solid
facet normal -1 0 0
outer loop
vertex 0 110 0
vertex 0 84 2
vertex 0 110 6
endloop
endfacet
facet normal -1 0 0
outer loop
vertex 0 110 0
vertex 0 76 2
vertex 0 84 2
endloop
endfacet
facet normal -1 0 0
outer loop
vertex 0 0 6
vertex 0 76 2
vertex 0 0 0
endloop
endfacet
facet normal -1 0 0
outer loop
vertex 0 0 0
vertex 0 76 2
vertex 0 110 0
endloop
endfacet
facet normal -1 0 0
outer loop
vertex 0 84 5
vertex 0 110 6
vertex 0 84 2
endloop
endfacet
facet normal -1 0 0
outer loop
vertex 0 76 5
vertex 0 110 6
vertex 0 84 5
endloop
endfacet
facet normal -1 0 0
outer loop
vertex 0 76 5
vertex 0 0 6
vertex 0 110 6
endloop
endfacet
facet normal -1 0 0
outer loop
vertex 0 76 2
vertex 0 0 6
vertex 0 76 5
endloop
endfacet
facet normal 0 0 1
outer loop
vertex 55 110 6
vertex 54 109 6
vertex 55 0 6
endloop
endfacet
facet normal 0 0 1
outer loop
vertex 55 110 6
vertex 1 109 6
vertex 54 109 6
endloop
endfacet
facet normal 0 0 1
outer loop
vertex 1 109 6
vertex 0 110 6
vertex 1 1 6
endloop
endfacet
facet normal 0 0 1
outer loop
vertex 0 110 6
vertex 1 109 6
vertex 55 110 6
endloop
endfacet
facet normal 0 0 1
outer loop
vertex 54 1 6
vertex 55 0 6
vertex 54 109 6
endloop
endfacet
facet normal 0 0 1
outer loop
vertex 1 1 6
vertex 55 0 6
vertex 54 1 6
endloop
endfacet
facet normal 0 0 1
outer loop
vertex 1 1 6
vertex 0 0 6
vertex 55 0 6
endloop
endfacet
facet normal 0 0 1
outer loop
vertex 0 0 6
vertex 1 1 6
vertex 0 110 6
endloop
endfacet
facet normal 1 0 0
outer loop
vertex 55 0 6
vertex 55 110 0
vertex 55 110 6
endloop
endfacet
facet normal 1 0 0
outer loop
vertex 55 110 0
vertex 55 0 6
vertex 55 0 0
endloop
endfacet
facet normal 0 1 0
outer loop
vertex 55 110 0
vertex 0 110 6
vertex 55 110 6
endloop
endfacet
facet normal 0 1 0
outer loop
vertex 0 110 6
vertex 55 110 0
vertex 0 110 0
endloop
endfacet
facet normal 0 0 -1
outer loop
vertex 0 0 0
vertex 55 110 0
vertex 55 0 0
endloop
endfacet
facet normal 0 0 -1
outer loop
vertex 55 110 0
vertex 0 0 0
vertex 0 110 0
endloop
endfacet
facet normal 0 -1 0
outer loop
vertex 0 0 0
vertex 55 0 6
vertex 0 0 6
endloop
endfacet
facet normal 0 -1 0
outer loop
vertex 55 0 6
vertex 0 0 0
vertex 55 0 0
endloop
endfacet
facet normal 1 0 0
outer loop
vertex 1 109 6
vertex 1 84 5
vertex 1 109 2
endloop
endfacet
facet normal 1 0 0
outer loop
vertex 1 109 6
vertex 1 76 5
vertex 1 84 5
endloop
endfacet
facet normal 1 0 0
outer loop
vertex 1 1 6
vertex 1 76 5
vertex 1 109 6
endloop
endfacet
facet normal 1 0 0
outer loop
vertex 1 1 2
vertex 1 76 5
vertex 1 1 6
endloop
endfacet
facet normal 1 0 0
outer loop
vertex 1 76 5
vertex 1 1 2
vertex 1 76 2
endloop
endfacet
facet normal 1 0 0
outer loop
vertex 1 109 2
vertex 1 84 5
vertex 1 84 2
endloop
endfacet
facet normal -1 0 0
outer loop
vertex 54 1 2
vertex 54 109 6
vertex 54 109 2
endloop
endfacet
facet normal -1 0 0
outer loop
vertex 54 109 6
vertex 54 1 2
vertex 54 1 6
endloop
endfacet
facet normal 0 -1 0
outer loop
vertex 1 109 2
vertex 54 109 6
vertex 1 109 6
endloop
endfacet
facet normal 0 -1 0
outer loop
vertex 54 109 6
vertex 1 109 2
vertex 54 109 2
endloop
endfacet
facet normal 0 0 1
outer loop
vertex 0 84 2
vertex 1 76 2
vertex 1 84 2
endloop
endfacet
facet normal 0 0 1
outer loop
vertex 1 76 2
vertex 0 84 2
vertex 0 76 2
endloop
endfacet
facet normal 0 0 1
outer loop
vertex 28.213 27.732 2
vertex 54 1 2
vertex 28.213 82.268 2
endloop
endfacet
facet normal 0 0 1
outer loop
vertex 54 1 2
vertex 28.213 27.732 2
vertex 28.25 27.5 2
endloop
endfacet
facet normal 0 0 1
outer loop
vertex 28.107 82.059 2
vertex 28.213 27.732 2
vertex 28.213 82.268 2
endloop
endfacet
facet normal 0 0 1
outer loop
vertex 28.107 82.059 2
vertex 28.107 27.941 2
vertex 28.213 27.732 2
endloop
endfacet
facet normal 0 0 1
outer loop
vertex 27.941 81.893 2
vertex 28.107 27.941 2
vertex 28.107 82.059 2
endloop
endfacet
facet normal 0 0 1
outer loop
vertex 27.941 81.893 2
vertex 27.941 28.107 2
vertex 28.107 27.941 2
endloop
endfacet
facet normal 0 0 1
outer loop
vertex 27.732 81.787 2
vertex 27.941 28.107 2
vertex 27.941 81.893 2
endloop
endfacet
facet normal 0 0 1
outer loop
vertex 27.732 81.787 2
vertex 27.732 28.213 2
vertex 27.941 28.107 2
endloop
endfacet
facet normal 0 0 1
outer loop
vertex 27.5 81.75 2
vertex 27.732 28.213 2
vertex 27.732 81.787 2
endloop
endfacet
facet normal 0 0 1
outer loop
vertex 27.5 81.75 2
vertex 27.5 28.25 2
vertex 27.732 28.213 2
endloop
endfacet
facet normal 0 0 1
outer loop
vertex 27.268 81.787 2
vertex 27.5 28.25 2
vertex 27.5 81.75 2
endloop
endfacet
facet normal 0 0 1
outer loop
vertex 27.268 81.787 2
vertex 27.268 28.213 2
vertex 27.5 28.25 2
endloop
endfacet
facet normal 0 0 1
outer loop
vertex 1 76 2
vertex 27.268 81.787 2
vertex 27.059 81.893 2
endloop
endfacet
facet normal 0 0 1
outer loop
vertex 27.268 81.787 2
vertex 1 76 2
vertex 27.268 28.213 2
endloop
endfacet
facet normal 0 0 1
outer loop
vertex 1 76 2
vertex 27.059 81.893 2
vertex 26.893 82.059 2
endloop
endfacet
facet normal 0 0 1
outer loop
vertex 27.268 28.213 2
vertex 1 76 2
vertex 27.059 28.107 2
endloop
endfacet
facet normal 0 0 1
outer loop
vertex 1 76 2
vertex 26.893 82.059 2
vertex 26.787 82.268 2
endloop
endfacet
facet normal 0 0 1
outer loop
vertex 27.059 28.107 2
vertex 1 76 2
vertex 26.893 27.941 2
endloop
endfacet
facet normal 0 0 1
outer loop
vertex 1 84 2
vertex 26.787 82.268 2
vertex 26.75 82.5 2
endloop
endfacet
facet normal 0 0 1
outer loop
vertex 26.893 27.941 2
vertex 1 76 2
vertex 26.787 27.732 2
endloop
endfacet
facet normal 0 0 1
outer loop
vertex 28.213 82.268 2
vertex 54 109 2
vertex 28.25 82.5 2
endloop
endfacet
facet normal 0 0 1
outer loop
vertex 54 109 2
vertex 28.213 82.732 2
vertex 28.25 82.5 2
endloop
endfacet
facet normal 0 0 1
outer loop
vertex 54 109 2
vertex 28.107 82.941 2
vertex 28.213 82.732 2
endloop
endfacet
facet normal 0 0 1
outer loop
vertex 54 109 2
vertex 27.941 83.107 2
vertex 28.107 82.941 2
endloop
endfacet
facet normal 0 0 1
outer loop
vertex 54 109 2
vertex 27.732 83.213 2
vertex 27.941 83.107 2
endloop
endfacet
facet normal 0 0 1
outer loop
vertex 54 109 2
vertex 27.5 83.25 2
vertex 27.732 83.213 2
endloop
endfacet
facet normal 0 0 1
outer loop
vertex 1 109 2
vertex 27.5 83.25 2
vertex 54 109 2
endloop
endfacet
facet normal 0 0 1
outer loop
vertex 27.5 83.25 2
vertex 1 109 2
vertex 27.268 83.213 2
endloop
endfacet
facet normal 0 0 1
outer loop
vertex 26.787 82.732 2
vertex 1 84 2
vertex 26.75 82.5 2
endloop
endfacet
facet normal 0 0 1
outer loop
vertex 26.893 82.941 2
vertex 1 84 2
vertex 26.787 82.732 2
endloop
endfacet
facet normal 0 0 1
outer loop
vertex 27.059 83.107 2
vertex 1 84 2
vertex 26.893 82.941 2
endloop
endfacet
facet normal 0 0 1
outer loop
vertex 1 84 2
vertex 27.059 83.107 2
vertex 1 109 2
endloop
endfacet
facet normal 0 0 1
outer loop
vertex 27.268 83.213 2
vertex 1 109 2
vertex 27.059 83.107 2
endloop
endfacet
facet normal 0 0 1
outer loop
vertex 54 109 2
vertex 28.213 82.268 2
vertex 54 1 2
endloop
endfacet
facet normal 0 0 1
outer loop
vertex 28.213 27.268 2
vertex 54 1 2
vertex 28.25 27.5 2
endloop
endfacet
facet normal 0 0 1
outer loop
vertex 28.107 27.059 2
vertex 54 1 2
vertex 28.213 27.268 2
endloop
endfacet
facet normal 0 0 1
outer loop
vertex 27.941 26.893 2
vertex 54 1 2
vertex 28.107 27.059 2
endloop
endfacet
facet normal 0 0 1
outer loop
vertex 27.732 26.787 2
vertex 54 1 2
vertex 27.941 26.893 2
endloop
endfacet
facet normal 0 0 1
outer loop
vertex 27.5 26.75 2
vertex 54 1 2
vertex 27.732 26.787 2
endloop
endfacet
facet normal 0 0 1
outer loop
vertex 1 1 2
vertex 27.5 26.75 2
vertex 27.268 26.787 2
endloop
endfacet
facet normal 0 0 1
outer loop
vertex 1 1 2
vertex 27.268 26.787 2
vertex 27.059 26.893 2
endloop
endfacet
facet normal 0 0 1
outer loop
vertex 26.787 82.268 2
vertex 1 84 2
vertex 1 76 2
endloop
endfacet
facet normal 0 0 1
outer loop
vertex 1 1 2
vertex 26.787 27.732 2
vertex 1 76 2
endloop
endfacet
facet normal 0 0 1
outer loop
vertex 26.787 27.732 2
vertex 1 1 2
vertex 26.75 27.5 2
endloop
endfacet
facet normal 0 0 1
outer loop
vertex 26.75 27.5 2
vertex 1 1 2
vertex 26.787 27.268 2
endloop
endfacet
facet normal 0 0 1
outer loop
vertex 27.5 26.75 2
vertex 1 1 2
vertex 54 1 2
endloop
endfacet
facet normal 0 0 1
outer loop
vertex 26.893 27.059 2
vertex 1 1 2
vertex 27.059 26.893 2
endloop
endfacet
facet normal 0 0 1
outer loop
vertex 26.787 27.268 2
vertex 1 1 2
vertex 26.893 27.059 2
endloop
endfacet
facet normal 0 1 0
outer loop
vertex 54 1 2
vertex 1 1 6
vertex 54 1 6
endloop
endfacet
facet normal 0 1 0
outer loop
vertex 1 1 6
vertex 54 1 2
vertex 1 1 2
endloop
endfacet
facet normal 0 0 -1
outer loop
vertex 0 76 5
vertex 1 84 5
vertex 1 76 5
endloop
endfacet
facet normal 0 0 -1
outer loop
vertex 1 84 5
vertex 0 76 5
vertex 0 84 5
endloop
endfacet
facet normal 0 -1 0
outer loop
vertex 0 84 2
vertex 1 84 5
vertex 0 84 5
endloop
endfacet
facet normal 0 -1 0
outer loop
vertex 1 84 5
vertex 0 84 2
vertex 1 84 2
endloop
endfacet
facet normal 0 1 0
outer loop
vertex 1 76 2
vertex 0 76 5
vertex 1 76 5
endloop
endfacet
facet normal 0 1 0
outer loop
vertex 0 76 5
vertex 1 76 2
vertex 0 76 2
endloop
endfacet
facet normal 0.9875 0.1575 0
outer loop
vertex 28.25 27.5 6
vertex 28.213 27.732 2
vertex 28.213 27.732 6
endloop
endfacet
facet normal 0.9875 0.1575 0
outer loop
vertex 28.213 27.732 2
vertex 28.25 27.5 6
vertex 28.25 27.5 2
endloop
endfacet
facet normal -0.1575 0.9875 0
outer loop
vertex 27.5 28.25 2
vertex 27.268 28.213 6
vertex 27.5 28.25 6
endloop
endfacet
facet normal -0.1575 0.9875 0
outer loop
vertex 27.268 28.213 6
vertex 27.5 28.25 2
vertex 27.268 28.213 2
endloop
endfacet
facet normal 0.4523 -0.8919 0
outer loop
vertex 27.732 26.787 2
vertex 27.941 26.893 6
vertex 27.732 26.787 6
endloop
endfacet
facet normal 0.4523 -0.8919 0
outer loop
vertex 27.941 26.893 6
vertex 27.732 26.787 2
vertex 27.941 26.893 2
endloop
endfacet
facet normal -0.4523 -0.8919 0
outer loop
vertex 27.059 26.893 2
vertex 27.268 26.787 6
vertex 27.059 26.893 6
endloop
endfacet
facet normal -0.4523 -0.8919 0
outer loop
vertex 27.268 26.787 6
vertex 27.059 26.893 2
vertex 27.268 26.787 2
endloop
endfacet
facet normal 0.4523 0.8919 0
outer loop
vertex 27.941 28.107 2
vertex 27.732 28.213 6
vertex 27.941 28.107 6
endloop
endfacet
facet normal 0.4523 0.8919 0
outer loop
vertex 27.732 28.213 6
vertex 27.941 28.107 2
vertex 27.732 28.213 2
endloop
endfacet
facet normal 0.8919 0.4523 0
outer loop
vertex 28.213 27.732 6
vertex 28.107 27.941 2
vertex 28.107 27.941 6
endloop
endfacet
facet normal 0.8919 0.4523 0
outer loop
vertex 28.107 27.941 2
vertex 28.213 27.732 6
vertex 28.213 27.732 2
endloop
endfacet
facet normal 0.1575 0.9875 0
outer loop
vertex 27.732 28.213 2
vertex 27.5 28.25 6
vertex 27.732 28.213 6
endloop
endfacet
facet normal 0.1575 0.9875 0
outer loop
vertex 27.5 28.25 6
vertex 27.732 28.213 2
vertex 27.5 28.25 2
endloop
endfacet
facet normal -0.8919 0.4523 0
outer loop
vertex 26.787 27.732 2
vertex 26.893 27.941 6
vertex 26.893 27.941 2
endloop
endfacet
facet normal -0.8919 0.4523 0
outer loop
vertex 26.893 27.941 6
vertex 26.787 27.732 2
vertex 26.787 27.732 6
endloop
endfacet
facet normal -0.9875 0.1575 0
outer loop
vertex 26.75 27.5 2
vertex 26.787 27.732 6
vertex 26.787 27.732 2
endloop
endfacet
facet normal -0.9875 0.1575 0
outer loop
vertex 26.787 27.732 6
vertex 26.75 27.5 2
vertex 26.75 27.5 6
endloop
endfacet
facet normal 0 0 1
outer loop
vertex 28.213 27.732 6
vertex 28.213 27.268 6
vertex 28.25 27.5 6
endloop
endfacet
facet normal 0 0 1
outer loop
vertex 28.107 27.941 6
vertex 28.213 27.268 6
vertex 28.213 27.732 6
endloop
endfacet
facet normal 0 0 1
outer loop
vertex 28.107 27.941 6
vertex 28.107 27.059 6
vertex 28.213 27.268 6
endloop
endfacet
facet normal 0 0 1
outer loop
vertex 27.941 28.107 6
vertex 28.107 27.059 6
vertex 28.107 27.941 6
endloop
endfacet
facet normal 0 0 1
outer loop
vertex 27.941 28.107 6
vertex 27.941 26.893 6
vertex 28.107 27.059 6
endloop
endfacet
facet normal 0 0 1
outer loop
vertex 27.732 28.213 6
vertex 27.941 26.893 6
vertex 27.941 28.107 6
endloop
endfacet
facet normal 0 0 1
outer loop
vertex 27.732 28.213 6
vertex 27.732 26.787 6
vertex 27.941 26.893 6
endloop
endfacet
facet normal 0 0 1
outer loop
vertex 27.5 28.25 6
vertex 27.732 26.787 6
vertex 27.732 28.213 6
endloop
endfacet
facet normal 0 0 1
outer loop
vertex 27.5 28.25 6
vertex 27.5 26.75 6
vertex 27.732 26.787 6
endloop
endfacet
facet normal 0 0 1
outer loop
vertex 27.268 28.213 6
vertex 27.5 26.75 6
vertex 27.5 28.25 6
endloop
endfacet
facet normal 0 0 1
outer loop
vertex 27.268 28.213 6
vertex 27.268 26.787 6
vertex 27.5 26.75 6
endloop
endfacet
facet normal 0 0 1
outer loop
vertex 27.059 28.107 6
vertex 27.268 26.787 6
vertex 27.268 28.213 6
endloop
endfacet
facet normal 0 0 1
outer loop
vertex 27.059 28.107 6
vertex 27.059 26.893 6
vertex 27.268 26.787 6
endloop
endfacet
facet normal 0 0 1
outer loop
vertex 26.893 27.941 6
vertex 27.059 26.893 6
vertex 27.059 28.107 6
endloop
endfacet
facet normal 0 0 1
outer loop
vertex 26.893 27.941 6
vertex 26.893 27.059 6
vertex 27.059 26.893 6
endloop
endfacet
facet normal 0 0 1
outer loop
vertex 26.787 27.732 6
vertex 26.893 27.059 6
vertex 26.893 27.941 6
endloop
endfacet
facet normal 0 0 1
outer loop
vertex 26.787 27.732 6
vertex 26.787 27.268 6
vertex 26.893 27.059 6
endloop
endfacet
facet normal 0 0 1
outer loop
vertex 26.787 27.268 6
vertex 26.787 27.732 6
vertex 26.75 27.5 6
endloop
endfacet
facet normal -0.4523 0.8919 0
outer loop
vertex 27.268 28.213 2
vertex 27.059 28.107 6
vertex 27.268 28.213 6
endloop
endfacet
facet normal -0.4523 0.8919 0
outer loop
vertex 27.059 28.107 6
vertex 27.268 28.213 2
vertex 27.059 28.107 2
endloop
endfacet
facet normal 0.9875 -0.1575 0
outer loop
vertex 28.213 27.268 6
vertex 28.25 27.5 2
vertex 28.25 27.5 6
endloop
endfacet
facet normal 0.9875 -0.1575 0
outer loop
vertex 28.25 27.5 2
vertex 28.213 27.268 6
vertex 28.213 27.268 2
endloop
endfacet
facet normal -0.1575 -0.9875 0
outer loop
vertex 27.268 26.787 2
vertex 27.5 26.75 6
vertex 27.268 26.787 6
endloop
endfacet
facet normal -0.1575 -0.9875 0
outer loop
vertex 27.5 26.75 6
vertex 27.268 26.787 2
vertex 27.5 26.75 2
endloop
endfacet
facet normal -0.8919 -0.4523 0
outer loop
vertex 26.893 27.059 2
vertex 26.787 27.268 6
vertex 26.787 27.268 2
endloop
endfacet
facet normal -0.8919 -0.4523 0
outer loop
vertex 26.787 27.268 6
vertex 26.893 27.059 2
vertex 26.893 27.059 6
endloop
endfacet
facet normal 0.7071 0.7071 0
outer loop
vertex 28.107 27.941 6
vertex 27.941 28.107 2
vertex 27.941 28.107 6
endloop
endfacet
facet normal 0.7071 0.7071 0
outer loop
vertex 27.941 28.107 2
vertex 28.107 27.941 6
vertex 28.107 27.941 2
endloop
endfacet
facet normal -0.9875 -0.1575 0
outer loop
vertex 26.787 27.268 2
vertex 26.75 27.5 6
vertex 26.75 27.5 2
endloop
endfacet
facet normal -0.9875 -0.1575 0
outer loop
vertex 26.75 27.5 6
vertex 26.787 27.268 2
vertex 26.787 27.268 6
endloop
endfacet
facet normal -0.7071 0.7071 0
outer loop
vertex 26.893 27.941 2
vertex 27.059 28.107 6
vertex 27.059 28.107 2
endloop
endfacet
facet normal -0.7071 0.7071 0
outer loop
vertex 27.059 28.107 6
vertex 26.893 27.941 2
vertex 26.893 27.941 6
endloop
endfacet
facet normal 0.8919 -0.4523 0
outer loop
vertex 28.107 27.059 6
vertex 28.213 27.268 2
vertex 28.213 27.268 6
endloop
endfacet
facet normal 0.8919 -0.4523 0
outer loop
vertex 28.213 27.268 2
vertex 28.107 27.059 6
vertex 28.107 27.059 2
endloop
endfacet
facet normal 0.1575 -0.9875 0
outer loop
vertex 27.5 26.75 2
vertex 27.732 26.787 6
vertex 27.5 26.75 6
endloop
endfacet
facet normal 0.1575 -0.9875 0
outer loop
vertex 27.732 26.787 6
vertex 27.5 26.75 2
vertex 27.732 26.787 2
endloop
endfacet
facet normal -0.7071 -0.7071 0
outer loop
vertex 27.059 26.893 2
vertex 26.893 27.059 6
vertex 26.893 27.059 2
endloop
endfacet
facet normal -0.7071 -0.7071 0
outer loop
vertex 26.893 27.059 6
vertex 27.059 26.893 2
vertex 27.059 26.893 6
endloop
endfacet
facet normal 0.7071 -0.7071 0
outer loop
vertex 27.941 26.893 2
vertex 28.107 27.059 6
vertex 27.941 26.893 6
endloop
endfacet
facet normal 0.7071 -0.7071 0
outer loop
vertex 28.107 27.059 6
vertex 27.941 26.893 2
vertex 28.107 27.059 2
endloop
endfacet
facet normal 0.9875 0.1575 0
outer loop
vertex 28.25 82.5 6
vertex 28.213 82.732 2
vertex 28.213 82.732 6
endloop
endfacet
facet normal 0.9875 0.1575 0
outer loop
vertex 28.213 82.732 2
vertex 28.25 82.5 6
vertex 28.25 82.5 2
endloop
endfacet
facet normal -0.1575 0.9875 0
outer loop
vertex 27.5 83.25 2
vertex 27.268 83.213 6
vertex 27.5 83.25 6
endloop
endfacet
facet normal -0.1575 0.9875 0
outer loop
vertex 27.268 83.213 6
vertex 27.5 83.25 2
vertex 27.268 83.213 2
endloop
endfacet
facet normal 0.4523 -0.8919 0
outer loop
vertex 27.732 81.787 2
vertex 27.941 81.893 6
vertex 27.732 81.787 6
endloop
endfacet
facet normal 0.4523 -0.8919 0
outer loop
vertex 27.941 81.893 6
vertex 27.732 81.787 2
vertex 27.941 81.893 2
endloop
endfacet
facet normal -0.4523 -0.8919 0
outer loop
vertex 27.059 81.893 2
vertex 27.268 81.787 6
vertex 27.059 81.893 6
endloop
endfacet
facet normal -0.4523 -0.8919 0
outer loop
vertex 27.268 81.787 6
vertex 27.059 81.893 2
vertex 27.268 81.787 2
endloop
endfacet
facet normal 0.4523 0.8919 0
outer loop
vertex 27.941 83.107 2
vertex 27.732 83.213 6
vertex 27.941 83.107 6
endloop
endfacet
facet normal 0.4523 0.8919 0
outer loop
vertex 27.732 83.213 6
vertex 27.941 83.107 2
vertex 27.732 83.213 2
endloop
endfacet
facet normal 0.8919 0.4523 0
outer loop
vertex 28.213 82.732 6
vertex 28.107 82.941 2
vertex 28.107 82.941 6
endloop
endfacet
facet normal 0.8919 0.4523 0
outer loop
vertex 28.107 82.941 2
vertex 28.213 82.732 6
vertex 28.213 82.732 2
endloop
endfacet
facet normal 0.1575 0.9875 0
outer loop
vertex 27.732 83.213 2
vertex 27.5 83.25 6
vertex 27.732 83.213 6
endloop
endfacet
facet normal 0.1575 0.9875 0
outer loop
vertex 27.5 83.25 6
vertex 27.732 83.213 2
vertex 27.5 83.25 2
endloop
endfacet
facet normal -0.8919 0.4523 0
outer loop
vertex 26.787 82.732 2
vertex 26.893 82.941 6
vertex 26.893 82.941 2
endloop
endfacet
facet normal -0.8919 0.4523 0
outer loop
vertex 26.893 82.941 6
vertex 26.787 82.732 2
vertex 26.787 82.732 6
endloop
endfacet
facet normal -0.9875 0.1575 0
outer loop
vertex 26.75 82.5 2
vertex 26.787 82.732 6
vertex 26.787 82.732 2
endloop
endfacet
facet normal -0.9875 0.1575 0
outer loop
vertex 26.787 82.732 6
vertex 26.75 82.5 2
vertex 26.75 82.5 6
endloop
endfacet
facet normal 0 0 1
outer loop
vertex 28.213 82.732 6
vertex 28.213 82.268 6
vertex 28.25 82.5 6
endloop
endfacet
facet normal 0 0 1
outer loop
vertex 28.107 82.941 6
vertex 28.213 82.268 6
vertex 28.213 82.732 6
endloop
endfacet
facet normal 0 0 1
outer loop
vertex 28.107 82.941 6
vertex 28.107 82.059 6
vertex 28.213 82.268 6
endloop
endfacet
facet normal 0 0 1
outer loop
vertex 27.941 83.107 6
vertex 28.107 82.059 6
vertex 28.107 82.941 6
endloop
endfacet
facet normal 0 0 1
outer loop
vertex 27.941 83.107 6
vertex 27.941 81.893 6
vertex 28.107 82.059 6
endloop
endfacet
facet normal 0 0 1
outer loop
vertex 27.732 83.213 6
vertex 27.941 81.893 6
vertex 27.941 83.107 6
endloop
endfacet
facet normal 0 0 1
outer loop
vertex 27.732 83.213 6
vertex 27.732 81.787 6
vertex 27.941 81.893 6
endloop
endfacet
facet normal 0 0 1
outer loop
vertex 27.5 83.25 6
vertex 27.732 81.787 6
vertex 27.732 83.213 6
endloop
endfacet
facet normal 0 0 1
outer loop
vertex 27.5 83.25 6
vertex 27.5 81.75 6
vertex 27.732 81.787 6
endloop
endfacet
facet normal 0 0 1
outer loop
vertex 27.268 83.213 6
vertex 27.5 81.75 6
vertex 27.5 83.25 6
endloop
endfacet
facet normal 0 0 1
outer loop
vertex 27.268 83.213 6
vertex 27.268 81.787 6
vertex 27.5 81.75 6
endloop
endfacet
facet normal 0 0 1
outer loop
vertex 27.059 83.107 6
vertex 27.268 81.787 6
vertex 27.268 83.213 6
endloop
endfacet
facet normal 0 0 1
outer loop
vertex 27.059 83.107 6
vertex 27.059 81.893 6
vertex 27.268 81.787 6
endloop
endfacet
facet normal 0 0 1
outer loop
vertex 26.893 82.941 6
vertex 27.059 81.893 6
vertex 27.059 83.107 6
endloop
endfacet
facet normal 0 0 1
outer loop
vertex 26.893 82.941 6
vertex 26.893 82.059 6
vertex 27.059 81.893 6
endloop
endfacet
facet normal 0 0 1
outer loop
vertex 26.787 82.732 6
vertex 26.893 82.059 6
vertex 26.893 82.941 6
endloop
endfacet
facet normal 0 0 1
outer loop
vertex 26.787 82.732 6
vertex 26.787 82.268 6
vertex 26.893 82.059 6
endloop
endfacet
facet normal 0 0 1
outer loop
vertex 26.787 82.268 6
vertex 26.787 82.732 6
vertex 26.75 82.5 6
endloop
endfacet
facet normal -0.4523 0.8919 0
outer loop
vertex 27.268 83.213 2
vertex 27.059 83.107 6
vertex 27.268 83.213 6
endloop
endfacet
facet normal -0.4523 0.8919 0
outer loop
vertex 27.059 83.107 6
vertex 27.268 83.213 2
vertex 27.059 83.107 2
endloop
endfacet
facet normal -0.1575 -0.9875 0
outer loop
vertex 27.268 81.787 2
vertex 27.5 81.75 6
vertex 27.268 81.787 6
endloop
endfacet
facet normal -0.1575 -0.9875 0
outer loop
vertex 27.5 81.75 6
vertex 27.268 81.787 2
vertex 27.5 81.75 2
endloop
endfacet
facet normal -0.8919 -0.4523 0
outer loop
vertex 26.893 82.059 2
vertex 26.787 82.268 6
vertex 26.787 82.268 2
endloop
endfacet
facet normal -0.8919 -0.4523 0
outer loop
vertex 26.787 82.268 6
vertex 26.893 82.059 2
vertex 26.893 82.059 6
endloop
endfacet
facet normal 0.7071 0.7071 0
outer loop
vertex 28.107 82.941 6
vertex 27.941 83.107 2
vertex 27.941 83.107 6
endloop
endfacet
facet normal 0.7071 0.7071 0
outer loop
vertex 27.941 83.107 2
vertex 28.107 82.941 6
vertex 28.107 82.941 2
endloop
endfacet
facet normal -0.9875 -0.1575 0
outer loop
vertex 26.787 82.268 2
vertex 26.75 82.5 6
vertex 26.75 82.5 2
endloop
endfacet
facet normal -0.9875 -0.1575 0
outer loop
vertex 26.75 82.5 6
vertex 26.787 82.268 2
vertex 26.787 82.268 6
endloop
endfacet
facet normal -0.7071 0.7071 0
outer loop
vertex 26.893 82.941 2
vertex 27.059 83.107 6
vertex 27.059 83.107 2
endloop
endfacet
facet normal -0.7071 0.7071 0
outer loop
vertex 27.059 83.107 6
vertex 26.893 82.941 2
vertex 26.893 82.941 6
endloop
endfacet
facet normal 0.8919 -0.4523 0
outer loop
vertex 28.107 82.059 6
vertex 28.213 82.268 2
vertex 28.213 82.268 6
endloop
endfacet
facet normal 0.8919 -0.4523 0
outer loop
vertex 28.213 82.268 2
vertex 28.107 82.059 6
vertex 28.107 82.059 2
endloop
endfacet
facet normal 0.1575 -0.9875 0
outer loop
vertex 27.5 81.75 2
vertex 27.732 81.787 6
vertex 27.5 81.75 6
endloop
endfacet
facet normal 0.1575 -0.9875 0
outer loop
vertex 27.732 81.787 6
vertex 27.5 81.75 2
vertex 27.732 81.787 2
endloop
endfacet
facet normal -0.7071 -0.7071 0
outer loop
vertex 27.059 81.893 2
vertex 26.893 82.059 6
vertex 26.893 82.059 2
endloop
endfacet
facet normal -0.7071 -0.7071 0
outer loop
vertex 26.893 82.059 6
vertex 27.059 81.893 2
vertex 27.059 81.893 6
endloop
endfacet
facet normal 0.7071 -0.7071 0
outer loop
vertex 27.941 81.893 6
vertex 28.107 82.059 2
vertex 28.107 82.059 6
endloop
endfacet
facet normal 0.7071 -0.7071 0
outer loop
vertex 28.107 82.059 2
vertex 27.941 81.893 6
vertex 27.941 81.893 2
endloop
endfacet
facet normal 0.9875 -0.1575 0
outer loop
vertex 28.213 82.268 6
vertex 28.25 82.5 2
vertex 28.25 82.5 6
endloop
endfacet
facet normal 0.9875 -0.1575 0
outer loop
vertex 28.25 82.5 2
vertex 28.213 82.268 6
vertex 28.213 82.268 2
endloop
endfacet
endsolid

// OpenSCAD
$fn = 20;
wallHeight = 6;
postDiameter = .75;

translate([27.5,27.5,0]) cylinder(wallHeight,postDiameter,postDiameter);
 
 
translate([27.5,82.5,0]) cylinder(wallHeight,postDiameter,postDiameter);
 
 
difference()
{
    cube([55,110,wallHeight],false);
    translate([1,1,2]) cube([53,108,wallHeight],false);
    //translate([-2,21,2]) cube([3,8,3],false);
    translate([-2,76,2]) cube([3,8,3],false);
}
